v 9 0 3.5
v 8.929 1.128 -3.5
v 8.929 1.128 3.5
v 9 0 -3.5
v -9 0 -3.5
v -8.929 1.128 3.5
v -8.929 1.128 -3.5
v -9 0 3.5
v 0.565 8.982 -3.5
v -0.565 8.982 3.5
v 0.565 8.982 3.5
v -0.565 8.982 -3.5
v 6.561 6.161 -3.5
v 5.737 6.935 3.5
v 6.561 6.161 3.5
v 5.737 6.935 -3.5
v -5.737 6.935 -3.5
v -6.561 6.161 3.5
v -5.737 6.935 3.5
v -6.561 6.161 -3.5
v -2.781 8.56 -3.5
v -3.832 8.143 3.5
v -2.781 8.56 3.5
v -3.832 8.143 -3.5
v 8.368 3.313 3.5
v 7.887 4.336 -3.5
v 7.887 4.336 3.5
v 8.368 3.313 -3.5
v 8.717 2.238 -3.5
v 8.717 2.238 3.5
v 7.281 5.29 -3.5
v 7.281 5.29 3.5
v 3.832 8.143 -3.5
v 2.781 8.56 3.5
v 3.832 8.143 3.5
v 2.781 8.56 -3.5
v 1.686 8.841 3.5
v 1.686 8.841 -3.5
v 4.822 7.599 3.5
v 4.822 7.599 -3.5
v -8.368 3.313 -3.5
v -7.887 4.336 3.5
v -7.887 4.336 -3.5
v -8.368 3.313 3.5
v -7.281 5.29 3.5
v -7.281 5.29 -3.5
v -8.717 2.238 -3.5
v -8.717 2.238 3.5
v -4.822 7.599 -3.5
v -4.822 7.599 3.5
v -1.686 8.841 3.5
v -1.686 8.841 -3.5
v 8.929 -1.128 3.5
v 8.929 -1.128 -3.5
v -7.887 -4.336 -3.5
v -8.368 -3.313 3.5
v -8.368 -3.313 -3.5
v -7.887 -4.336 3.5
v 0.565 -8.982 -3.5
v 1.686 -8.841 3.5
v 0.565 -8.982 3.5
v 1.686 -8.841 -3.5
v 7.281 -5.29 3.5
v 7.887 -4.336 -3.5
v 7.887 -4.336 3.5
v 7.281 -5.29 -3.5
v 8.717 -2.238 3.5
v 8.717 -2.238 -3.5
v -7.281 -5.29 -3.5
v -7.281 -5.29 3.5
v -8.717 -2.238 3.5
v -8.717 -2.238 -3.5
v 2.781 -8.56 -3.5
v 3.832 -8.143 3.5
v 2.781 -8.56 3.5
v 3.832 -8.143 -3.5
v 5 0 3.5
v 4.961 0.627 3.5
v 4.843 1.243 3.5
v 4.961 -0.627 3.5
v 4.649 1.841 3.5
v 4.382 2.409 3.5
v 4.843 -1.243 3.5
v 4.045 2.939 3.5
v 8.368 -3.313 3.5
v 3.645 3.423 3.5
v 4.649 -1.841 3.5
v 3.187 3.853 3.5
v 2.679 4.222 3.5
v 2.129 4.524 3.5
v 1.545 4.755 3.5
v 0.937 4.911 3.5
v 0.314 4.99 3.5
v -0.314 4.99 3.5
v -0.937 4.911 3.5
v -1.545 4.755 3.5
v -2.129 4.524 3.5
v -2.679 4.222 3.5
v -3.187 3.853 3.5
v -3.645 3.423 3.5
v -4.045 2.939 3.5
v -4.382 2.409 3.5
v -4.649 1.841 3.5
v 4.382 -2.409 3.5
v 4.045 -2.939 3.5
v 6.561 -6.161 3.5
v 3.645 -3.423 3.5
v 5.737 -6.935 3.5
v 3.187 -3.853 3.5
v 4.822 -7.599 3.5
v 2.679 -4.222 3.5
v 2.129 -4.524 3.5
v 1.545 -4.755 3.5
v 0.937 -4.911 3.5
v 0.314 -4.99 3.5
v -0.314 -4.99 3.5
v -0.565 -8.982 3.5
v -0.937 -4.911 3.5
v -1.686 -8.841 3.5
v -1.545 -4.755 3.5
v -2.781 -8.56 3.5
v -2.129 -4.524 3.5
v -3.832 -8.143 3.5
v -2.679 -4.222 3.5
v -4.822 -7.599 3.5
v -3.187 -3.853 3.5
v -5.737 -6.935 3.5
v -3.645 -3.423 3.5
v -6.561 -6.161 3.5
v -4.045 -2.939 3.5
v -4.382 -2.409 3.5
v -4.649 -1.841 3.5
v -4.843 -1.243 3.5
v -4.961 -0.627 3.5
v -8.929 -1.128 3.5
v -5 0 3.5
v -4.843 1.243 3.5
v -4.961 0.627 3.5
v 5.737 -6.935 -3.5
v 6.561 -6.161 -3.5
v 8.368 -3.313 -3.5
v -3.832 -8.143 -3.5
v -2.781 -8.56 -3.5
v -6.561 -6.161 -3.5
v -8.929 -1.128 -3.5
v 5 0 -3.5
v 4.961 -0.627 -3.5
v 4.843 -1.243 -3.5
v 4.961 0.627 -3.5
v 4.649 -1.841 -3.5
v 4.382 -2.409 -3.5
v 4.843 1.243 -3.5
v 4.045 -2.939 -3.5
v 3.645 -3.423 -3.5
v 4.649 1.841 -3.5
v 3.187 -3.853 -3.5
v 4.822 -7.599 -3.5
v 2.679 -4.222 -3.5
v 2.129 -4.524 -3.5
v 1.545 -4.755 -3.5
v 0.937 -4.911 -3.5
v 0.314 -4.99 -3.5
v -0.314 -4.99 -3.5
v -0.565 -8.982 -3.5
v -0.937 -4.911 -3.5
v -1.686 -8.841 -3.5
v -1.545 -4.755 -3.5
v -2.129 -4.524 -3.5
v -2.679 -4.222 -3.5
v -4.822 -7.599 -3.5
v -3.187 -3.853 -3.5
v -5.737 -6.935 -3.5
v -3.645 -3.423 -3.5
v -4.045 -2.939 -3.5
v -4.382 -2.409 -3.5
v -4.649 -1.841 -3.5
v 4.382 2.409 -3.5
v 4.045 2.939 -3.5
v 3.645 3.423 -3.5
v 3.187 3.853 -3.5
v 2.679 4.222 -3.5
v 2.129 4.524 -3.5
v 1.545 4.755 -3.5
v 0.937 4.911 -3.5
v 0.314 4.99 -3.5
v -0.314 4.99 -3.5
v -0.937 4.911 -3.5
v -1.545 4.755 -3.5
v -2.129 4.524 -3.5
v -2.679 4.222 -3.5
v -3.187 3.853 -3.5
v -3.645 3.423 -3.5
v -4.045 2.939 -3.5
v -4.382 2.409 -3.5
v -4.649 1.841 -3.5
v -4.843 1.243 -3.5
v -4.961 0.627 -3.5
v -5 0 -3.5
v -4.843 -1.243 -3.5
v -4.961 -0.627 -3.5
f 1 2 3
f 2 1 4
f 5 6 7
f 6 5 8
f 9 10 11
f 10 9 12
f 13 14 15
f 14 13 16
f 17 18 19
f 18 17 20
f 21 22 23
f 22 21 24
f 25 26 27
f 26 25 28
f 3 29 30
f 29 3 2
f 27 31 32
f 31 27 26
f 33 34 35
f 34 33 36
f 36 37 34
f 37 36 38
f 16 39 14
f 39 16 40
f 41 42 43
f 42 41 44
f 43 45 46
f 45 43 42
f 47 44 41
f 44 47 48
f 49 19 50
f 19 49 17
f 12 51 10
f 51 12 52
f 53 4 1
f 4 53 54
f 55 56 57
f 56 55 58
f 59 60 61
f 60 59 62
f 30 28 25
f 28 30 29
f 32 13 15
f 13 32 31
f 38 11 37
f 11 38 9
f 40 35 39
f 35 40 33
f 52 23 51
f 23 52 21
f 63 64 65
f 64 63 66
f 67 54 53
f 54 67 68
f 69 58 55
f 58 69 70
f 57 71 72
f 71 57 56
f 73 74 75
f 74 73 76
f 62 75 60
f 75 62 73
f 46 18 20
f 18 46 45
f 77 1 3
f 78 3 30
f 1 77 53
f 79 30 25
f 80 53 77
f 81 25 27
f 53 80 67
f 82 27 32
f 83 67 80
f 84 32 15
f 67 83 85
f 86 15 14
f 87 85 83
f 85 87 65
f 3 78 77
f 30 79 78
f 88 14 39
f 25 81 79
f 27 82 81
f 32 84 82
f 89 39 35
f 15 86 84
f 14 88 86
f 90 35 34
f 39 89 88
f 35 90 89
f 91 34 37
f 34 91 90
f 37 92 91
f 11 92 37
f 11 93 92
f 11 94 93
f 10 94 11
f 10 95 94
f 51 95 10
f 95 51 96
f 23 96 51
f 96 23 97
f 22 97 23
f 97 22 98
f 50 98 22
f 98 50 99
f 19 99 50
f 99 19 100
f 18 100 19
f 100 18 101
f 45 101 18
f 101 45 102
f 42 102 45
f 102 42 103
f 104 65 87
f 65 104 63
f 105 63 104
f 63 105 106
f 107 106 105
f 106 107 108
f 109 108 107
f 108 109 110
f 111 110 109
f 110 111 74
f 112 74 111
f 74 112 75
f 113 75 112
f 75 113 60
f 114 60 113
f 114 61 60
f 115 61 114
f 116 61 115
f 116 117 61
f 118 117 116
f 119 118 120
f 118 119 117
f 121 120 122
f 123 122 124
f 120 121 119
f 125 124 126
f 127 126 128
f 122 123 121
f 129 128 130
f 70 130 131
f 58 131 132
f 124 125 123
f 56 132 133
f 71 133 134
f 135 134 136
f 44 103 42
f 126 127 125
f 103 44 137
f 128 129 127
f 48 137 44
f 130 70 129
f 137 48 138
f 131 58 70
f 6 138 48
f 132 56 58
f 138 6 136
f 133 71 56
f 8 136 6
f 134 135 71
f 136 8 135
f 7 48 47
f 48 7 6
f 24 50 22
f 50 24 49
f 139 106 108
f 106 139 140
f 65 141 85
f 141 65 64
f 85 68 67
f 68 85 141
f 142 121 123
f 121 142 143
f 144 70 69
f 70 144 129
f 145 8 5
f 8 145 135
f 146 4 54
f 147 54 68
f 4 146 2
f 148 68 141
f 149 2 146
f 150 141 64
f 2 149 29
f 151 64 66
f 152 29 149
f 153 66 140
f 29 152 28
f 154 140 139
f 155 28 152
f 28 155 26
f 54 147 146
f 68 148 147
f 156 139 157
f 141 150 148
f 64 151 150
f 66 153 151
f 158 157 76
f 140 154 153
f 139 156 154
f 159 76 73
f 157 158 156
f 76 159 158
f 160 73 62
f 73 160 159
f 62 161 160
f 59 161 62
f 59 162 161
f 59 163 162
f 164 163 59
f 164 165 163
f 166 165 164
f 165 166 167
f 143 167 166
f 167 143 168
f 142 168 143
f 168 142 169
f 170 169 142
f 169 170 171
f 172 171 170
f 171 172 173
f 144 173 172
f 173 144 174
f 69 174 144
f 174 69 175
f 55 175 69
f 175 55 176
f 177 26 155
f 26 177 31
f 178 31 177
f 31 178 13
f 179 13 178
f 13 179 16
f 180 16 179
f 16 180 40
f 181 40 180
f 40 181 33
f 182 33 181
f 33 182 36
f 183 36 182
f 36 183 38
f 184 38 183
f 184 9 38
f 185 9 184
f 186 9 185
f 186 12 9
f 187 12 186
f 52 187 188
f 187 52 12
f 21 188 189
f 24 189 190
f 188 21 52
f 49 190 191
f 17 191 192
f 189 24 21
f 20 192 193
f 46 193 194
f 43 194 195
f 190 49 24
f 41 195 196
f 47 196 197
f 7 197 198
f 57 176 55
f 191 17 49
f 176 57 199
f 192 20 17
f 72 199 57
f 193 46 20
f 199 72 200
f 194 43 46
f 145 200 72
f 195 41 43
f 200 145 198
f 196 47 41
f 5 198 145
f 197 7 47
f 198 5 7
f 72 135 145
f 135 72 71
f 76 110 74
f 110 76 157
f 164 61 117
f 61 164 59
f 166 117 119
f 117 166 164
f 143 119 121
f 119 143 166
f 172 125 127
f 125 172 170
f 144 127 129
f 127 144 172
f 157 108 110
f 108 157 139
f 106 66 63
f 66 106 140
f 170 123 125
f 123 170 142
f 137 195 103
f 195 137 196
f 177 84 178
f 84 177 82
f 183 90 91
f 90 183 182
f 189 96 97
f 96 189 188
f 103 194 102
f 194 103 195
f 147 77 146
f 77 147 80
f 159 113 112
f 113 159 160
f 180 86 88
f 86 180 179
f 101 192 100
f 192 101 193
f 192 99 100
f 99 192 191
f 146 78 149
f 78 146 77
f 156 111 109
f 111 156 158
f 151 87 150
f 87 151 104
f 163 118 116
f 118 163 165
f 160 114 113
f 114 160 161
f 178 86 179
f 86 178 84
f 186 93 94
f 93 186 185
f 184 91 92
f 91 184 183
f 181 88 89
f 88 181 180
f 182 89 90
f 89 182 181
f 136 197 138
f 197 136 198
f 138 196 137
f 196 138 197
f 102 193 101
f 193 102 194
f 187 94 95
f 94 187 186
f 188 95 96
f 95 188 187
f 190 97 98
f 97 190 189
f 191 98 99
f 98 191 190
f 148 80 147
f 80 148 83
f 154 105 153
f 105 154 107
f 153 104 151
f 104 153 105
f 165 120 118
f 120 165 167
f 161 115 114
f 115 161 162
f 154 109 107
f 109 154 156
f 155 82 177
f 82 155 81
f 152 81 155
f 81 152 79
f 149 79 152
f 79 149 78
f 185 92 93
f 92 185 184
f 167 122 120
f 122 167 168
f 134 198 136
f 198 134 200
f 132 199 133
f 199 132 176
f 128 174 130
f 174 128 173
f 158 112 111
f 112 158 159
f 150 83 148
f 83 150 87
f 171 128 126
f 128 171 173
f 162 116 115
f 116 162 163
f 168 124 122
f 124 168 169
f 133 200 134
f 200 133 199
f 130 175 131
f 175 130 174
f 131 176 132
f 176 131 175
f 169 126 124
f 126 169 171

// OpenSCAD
$fn = 50;


difference() {
	union() {
		translate(v = [0, 0, -3.5000000000]) {
			cylinder(h = 7, r = 9.0000000000);
		}
	}
	union() {
		translate(v = [0, 0, -100.0000000000]) {
			cylinder(h = 200, r = 5.0000000000);
		}
	}
}
